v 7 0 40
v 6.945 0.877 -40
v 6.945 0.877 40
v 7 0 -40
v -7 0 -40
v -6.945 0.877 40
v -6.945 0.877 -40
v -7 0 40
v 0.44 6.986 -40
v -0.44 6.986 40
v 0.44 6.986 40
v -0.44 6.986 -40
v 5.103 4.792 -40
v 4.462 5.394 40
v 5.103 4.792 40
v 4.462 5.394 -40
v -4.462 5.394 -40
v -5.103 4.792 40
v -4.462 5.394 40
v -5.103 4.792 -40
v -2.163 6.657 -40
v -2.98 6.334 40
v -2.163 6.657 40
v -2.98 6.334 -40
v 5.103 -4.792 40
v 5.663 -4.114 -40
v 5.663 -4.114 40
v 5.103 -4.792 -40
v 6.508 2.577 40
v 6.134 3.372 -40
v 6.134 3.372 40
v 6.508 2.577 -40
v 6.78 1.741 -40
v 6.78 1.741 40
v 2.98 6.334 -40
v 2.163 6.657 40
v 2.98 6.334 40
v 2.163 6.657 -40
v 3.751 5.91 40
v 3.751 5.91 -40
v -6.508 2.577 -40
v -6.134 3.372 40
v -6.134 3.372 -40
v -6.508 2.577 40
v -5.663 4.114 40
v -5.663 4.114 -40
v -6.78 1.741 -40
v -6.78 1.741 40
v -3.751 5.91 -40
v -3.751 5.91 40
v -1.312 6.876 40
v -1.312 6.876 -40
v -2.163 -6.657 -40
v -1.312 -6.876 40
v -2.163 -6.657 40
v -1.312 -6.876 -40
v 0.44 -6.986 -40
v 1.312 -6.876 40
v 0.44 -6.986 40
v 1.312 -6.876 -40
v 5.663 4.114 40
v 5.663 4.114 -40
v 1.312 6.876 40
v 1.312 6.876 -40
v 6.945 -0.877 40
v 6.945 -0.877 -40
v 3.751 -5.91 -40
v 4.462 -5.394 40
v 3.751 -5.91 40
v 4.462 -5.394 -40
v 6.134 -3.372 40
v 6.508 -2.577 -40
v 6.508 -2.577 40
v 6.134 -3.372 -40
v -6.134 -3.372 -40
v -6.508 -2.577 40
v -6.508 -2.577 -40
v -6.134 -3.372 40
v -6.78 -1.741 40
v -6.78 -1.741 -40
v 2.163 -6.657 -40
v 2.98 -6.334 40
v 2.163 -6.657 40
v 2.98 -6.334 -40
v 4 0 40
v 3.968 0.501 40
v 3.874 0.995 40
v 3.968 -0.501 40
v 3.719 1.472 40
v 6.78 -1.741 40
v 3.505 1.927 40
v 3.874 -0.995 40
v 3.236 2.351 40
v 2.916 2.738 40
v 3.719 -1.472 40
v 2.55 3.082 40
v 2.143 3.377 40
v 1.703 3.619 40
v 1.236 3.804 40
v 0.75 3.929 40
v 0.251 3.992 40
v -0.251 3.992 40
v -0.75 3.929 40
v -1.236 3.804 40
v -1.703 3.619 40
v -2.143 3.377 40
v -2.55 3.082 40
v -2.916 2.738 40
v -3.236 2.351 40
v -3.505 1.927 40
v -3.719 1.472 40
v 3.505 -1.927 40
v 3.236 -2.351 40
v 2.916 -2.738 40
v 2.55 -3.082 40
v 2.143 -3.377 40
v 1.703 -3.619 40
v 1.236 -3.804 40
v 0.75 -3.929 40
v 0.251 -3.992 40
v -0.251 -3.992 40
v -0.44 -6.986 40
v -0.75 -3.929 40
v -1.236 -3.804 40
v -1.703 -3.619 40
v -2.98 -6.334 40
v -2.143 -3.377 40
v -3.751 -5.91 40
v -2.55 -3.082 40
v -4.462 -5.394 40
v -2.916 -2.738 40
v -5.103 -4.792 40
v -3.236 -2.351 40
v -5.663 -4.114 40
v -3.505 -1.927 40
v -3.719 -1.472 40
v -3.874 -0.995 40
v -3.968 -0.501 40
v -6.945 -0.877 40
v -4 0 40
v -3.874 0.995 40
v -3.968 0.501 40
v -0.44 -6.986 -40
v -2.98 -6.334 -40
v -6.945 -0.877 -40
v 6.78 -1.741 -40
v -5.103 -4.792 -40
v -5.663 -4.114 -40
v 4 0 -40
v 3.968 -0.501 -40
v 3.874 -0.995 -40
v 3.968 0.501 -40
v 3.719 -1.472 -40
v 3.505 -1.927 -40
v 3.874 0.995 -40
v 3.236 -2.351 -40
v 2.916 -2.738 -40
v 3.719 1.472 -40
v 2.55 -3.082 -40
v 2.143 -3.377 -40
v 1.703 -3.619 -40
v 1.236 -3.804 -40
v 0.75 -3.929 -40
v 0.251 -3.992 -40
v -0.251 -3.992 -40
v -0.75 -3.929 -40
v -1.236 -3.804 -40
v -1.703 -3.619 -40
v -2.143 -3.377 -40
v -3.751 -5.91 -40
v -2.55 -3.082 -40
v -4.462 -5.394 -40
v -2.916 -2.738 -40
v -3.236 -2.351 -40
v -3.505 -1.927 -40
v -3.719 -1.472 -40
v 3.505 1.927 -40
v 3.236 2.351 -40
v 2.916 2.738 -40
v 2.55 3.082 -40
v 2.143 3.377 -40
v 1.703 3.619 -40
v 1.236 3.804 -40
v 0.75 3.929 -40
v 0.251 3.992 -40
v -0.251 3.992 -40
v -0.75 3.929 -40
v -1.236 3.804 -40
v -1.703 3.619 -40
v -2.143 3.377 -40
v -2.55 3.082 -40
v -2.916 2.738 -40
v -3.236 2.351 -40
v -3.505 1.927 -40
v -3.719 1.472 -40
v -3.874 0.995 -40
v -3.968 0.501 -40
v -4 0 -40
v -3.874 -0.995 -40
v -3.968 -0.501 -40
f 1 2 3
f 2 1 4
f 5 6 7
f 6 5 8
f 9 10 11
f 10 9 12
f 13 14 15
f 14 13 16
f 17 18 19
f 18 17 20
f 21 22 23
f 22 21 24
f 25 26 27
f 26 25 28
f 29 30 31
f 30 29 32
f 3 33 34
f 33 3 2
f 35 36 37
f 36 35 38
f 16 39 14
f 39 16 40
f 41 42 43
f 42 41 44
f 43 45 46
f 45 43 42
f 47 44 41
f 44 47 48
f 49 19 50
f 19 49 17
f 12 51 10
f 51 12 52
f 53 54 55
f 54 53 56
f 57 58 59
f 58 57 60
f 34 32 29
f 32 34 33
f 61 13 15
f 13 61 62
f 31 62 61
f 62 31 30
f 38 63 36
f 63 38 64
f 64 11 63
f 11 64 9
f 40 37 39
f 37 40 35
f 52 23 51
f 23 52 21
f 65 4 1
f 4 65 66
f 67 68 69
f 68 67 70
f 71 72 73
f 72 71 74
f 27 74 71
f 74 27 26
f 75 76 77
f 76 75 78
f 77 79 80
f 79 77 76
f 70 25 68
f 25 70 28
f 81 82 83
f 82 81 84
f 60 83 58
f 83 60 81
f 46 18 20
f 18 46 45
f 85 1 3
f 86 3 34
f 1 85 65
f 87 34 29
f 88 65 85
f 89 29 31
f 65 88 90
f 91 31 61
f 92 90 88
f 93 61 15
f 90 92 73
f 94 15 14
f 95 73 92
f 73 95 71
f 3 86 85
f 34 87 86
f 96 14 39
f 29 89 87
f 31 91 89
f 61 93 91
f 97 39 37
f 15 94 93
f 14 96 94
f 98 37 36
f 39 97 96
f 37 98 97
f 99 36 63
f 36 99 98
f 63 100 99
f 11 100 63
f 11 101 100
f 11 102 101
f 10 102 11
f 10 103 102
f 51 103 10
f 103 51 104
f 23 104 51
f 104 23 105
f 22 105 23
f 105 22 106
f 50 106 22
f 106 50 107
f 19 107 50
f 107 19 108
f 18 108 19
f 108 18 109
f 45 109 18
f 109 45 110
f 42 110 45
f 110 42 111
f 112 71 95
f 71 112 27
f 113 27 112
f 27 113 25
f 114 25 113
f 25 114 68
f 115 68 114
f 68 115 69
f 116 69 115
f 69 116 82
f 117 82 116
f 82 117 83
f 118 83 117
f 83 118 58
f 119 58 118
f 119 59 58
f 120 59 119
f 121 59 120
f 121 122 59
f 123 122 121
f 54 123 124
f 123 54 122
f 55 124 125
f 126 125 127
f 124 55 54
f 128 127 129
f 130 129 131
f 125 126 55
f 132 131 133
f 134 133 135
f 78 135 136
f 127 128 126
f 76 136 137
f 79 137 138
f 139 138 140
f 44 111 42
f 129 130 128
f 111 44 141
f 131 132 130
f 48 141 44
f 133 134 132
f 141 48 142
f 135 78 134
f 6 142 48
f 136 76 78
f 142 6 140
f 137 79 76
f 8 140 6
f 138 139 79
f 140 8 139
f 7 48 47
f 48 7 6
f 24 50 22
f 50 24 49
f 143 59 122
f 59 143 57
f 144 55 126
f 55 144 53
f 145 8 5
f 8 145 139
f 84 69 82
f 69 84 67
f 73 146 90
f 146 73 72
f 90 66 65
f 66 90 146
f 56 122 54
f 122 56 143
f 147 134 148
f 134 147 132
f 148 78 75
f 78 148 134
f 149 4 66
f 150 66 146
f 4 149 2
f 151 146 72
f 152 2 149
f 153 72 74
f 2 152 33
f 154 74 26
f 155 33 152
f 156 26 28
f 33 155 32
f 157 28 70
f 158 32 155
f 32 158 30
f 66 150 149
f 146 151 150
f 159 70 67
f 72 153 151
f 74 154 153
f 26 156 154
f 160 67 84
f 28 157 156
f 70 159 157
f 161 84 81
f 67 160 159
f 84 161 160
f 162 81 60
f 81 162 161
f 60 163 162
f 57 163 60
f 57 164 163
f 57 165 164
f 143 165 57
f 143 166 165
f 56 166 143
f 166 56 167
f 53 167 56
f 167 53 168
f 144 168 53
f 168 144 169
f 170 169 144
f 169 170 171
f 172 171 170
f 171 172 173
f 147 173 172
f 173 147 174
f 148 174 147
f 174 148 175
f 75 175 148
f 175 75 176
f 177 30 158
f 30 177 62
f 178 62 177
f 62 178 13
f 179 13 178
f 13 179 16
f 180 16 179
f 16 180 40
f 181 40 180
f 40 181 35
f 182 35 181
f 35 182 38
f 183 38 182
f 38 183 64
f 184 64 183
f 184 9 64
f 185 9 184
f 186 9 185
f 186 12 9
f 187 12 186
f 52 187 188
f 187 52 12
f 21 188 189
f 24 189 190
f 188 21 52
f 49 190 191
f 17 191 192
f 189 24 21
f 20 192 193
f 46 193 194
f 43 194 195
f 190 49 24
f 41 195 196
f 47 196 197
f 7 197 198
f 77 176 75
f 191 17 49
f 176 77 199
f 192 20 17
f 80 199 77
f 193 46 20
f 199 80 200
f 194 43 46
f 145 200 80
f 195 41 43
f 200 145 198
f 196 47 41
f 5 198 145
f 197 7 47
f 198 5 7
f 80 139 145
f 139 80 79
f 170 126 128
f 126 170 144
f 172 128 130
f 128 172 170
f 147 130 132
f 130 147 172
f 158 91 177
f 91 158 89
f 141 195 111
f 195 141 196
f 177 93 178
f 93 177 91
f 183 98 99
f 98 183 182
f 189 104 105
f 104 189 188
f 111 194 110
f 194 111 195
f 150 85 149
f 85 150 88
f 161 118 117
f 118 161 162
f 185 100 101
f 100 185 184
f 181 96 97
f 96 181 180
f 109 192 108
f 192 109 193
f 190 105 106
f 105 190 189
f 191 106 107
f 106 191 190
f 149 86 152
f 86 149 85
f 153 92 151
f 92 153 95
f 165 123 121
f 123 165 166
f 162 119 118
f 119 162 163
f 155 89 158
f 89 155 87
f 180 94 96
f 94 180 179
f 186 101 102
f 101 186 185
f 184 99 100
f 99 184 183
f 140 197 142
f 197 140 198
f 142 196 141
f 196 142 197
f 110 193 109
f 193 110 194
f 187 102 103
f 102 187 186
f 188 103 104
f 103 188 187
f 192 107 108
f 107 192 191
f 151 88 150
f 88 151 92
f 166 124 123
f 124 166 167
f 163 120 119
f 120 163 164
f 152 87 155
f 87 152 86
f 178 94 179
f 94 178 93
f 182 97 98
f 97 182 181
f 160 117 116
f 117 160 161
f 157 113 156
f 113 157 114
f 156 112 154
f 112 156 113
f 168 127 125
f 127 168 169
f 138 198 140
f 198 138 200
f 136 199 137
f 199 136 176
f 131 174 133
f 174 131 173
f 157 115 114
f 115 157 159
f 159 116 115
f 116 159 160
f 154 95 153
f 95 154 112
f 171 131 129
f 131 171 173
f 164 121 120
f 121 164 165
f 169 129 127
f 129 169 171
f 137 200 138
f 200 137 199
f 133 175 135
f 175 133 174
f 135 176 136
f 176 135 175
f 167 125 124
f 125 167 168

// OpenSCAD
$fn = 50;


difference() {
	union() {
		translate(v = [0, 0, -40.0000000000]) {
			cylinder(h = 80, r = 7.0000000000);
		}
	}
	union() {
		translate(v = [0, 0, -100.0000000000]) {
			cylinder(h = 200, r = 4.0000000000);
		}
	}
}
